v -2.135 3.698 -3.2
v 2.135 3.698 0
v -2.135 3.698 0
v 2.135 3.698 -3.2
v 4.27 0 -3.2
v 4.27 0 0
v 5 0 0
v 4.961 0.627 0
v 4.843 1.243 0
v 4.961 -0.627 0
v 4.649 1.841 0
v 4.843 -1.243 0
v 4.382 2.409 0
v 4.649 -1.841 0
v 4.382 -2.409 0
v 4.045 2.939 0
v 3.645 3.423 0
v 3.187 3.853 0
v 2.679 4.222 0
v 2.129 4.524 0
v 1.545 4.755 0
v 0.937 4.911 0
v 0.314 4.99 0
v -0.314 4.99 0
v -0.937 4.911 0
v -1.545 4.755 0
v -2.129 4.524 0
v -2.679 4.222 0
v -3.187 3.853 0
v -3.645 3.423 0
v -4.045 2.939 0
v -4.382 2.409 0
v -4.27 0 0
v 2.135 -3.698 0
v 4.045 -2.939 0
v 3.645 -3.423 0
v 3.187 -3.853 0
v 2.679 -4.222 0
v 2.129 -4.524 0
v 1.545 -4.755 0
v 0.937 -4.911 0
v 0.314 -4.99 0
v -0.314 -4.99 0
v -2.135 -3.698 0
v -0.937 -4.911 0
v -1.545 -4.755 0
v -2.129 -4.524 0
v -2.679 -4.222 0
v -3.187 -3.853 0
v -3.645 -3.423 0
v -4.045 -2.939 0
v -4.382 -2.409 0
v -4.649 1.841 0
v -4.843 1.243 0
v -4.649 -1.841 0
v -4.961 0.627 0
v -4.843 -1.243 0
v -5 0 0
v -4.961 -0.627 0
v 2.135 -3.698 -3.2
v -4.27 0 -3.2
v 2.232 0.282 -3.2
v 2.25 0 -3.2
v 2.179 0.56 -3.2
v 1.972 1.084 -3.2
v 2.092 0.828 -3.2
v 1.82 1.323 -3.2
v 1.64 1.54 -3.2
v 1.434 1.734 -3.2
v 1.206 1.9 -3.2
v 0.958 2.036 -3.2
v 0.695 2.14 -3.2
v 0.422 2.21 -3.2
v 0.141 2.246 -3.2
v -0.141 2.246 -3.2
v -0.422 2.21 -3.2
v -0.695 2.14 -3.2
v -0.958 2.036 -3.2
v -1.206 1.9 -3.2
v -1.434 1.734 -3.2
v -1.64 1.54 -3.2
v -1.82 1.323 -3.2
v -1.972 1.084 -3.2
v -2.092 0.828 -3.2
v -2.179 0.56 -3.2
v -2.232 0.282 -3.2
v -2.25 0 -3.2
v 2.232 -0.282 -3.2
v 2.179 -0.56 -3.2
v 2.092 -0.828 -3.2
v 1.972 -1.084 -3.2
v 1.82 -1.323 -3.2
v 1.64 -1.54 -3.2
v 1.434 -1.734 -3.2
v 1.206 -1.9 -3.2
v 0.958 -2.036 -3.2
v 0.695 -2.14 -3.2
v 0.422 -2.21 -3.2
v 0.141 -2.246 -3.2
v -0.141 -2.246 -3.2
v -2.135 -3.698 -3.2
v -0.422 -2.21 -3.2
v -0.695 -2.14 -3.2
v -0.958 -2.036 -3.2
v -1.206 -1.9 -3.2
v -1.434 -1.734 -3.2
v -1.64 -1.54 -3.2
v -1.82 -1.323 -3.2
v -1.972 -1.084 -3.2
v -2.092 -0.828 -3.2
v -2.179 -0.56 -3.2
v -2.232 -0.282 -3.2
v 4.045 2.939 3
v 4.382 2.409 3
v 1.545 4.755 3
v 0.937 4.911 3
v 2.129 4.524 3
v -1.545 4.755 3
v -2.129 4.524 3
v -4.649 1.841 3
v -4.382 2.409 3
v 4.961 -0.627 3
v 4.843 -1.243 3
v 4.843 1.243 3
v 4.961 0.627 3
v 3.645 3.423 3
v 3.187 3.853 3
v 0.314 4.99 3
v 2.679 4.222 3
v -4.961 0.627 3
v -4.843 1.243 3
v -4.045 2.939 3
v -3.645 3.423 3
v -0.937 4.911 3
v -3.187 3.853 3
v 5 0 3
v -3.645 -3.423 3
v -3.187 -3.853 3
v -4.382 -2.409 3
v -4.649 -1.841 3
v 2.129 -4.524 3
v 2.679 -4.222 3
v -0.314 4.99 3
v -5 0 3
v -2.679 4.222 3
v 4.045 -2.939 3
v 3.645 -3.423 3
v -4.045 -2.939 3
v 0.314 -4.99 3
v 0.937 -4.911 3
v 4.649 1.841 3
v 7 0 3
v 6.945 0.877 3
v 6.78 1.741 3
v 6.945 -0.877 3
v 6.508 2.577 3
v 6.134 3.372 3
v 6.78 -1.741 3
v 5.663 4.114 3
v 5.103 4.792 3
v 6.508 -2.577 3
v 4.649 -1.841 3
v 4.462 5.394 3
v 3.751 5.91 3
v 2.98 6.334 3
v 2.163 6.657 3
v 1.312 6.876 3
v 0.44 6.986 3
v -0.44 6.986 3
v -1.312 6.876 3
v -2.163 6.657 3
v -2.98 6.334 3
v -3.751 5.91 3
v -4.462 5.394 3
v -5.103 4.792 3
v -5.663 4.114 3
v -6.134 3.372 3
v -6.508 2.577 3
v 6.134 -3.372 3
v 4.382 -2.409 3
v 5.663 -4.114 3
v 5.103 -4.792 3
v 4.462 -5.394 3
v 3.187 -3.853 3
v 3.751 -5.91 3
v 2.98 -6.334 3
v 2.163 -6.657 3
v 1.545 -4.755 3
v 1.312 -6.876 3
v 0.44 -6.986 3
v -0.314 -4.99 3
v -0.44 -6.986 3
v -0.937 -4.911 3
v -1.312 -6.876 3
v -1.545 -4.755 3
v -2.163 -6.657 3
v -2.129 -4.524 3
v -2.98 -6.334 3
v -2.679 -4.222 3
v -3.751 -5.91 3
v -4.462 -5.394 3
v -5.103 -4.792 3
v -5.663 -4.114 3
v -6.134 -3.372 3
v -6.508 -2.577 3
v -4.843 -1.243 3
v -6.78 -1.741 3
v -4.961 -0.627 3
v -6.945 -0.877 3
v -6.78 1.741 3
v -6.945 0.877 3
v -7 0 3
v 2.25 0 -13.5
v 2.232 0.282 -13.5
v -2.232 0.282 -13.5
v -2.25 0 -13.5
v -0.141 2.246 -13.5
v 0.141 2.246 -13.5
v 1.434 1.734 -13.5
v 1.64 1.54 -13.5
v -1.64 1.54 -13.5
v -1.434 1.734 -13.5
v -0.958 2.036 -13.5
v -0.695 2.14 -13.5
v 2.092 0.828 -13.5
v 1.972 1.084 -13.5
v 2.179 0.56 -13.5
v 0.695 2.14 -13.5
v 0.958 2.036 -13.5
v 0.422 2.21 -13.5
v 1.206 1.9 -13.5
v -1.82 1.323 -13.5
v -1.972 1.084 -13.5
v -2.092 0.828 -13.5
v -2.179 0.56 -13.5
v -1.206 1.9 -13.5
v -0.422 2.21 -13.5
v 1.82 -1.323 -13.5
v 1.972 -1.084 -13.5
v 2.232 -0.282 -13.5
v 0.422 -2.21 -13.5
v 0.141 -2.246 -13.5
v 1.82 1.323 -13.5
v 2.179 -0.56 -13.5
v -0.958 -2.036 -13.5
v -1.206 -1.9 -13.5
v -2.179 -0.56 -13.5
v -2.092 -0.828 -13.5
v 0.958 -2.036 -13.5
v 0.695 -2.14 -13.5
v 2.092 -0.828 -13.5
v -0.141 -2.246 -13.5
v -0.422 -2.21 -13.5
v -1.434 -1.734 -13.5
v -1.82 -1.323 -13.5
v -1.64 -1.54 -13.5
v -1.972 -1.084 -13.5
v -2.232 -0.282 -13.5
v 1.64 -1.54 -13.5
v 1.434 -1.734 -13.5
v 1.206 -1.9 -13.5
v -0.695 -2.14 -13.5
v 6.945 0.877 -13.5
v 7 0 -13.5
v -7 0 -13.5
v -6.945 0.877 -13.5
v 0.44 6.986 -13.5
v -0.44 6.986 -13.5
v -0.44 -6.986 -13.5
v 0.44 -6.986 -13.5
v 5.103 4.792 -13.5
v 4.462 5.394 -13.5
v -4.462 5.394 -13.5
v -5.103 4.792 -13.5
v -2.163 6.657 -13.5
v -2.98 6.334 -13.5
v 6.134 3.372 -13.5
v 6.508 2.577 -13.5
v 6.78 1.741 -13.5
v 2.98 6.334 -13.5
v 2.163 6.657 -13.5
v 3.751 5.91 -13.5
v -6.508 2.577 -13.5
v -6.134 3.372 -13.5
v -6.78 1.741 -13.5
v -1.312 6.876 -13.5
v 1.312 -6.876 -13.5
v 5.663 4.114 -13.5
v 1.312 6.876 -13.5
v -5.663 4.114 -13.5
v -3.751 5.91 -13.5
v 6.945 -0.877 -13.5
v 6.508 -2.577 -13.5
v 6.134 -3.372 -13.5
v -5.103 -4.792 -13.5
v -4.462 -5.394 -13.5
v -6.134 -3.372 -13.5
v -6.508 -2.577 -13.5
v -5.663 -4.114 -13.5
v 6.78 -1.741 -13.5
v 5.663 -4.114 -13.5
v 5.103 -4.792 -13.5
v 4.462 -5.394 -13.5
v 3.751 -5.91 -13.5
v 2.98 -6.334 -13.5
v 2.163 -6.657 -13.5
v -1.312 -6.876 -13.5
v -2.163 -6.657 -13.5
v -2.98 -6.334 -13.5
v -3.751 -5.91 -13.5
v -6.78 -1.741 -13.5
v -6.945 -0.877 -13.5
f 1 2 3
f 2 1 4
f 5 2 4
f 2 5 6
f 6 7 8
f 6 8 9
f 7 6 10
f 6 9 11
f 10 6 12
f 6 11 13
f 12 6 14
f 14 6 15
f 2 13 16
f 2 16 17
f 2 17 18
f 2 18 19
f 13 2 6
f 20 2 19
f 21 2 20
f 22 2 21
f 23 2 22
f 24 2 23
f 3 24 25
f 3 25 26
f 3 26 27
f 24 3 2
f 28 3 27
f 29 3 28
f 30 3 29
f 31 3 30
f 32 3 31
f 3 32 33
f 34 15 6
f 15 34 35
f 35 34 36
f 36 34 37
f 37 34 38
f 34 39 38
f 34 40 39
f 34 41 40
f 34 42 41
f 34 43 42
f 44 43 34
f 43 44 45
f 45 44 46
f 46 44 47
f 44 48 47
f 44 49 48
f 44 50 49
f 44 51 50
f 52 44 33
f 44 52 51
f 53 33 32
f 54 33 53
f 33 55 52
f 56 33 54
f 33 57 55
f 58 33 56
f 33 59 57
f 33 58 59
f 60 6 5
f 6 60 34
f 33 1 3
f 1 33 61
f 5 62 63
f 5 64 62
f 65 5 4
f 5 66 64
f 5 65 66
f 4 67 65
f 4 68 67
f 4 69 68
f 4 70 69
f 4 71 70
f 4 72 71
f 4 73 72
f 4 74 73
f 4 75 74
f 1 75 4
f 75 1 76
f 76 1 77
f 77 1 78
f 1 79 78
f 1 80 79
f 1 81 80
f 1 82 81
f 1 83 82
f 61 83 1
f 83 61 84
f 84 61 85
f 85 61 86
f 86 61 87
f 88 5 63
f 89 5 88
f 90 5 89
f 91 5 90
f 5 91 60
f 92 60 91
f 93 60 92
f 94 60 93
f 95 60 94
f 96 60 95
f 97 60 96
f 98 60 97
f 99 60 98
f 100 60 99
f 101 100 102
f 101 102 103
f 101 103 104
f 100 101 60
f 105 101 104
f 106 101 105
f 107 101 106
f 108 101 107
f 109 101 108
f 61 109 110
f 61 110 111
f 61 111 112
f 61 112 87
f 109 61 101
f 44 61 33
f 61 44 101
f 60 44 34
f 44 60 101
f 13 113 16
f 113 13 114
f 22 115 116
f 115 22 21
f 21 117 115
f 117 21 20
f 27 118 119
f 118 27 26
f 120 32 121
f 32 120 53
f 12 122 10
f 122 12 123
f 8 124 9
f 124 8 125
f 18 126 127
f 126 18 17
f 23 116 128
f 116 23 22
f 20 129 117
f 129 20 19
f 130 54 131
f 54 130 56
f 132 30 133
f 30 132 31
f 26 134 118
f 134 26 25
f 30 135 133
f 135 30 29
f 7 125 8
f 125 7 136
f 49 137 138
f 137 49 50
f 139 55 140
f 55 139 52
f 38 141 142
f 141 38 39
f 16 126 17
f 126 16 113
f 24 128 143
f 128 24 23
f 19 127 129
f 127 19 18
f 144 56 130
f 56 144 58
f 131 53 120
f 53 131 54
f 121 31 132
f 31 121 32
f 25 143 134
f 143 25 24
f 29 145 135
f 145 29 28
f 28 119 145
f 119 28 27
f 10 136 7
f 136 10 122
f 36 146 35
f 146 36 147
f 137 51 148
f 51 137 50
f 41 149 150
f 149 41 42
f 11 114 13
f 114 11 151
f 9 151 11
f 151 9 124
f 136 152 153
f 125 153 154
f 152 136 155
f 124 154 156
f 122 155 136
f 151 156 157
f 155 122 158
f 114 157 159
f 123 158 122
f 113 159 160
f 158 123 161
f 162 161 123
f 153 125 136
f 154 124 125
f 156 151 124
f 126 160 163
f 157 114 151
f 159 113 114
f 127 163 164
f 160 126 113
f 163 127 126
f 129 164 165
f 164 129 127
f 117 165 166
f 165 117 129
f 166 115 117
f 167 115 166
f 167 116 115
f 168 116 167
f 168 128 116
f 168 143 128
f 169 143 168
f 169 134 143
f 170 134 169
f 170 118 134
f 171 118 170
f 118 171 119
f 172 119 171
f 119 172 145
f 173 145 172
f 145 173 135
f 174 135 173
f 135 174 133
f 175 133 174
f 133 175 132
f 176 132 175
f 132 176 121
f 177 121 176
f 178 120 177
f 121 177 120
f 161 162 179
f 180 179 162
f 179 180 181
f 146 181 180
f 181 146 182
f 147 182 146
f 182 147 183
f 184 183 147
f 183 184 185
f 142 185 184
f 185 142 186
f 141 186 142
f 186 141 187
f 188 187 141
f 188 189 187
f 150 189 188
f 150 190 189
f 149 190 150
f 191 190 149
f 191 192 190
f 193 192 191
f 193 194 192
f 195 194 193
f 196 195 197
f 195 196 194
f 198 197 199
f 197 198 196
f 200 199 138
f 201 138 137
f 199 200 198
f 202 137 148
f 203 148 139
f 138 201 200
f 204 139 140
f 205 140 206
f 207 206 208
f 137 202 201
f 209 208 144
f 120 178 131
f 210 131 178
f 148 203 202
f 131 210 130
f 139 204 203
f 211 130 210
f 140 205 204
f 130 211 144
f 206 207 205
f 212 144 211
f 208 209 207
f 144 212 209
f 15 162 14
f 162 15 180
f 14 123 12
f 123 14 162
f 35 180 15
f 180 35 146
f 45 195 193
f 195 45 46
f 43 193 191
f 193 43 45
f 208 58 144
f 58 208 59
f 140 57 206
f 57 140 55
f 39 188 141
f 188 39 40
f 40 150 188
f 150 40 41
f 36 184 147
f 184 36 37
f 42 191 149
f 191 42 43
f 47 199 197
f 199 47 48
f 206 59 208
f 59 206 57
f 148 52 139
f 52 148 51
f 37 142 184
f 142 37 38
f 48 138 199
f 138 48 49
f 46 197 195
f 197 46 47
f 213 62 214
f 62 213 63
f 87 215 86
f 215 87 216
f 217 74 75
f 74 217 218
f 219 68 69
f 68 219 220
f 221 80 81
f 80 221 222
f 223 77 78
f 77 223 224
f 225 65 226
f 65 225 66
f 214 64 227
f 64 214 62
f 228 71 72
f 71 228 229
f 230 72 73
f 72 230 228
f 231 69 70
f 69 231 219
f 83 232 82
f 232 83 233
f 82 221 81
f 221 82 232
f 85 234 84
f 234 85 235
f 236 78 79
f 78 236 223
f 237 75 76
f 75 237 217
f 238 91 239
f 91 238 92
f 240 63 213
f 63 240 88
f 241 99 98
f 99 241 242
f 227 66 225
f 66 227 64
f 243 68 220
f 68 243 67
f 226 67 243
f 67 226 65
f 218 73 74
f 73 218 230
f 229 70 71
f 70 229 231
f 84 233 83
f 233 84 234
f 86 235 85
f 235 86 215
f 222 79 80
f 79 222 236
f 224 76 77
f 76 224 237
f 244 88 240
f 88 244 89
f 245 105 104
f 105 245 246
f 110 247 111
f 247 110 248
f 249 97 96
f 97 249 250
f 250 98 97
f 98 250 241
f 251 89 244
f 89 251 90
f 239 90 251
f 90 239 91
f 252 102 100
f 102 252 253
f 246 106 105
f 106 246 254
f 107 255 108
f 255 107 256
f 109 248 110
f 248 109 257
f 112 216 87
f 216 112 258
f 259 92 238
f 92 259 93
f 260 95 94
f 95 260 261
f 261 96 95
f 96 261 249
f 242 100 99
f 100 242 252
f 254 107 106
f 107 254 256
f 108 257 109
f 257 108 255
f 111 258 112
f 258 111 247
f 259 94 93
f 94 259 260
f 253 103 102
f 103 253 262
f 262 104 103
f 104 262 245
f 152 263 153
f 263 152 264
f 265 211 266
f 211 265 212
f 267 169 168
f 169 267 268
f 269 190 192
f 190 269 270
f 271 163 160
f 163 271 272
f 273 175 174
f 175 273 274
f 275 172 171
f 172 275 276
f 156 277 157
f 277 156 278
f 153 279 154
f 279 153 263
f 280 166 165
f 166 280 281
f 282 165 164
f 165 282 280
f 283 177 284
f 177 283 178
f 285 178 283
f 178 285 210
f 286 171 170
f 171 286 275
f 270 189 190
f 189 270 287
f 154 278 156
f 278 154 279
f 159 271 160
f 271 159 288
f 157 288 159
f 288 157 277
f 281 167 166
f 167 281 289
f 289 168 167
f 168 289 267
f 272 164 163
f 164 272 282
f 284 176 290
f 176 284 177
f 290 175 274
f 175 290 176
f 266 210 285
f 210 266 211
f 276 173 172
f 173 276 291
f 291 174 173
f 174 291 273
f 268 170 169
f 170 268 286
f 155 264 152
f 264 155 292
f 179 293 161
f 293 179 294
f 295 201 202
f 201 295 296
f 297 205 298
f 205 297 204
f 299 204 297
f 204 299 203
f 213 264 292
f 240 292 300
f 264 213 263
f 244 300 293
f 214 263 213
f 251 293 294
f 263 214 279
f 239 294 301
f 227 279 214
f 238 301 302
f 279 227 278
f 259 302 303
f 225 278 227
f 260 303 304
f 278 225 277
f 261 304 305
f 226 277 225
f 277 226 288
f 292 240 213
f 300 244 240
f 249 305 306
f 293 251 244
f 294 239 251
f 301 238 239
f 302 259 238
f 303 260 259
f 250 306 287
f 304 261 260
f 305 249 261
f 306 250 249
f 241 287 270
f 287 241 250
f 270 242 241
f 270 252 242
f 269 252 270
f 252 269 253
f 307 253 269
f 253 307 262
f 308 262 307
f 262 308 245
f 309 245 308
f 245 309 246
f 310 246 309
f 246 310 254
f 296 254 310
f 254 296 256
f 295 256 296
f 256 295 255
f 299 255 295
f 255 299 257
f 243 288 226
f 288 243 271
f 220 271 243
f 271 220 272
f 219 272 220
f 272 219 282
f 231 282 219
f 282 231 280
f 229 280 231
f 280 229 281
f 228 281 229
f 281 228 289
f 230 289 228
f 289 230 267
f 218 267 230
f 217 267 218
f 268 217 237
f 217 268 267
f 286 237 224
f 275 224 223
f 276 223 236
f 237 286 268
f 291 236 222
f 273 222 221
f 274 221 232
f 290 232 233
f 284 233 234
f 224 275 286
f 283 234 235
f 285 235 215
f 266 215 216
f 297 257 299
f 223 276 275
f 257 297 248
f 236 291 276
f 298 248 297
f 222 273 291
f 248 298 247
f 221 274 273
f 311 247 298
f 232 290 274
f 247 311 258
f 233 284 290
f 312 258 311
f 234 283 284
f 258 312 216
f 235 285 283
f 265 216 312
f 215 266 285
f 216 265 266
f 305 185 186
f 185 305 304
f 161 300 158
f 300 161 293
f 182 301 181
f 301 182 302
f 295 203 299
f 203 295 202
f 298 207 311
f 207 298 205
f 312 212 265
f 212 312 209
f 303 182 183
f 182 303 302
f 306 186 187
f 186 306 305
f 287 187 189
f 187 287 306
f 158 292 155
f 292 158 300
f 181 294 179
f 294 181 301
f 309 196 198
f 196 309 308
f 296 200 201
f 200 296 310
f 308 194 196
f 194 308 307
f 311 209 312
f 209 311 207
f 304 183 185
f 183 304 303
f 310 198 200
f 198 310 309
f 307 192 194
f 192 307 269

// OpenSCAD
$fn = 50;

difference() {
	union() {
		translate(v = [0, 0, -13.5]) {
			cylinder(h = 16.5, r = 7.0);
		}
	}
	union() {
		translate(v = [0, 0, 0]) {
			rotate(a = [0, 0, 0]) {
				difference() {
					union() {
						translate(v = [0, 0, -3.2]) {
							linear_extrude(height = 3.2) {
								polygon(points = [[4.2698, 0.0], [2.1349000000000005, 3.697755269078796], [-2.134899999999999, 3.6977552690787965], [-4.2698, 5.228996902999369e-16], [-2.134900000000002, -3.6977552690787956], [2.1348999999999974, -3.697755269078798]]);
							}
						}
					}
					union();
				}
			}
		}
		#cylinder(h = 3, r = 5.0);
		#translate(v = [0, 0, -100.0]) {
			cylinder(h = 200, r = 2.25);
		}
	}
}
